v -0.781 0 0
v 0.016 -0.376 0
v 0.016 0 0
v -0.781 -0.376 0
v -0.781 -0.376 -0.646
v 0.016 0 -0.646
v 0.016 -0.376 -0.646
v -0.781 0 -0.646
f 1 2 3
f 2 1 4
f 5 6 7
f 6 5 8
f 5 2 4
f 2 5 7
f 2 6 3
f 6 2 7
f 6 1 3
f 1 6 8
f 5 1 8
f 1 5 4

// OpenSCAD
translate([-(0.765+0.016),-(0.36+0.016),-(1.25-2*0.287-2*0.015)]){  

                cube([0.765+0.016*2 ,0.36+0.016, 1.25-2*0.287-2*0.015], center=false);

};
